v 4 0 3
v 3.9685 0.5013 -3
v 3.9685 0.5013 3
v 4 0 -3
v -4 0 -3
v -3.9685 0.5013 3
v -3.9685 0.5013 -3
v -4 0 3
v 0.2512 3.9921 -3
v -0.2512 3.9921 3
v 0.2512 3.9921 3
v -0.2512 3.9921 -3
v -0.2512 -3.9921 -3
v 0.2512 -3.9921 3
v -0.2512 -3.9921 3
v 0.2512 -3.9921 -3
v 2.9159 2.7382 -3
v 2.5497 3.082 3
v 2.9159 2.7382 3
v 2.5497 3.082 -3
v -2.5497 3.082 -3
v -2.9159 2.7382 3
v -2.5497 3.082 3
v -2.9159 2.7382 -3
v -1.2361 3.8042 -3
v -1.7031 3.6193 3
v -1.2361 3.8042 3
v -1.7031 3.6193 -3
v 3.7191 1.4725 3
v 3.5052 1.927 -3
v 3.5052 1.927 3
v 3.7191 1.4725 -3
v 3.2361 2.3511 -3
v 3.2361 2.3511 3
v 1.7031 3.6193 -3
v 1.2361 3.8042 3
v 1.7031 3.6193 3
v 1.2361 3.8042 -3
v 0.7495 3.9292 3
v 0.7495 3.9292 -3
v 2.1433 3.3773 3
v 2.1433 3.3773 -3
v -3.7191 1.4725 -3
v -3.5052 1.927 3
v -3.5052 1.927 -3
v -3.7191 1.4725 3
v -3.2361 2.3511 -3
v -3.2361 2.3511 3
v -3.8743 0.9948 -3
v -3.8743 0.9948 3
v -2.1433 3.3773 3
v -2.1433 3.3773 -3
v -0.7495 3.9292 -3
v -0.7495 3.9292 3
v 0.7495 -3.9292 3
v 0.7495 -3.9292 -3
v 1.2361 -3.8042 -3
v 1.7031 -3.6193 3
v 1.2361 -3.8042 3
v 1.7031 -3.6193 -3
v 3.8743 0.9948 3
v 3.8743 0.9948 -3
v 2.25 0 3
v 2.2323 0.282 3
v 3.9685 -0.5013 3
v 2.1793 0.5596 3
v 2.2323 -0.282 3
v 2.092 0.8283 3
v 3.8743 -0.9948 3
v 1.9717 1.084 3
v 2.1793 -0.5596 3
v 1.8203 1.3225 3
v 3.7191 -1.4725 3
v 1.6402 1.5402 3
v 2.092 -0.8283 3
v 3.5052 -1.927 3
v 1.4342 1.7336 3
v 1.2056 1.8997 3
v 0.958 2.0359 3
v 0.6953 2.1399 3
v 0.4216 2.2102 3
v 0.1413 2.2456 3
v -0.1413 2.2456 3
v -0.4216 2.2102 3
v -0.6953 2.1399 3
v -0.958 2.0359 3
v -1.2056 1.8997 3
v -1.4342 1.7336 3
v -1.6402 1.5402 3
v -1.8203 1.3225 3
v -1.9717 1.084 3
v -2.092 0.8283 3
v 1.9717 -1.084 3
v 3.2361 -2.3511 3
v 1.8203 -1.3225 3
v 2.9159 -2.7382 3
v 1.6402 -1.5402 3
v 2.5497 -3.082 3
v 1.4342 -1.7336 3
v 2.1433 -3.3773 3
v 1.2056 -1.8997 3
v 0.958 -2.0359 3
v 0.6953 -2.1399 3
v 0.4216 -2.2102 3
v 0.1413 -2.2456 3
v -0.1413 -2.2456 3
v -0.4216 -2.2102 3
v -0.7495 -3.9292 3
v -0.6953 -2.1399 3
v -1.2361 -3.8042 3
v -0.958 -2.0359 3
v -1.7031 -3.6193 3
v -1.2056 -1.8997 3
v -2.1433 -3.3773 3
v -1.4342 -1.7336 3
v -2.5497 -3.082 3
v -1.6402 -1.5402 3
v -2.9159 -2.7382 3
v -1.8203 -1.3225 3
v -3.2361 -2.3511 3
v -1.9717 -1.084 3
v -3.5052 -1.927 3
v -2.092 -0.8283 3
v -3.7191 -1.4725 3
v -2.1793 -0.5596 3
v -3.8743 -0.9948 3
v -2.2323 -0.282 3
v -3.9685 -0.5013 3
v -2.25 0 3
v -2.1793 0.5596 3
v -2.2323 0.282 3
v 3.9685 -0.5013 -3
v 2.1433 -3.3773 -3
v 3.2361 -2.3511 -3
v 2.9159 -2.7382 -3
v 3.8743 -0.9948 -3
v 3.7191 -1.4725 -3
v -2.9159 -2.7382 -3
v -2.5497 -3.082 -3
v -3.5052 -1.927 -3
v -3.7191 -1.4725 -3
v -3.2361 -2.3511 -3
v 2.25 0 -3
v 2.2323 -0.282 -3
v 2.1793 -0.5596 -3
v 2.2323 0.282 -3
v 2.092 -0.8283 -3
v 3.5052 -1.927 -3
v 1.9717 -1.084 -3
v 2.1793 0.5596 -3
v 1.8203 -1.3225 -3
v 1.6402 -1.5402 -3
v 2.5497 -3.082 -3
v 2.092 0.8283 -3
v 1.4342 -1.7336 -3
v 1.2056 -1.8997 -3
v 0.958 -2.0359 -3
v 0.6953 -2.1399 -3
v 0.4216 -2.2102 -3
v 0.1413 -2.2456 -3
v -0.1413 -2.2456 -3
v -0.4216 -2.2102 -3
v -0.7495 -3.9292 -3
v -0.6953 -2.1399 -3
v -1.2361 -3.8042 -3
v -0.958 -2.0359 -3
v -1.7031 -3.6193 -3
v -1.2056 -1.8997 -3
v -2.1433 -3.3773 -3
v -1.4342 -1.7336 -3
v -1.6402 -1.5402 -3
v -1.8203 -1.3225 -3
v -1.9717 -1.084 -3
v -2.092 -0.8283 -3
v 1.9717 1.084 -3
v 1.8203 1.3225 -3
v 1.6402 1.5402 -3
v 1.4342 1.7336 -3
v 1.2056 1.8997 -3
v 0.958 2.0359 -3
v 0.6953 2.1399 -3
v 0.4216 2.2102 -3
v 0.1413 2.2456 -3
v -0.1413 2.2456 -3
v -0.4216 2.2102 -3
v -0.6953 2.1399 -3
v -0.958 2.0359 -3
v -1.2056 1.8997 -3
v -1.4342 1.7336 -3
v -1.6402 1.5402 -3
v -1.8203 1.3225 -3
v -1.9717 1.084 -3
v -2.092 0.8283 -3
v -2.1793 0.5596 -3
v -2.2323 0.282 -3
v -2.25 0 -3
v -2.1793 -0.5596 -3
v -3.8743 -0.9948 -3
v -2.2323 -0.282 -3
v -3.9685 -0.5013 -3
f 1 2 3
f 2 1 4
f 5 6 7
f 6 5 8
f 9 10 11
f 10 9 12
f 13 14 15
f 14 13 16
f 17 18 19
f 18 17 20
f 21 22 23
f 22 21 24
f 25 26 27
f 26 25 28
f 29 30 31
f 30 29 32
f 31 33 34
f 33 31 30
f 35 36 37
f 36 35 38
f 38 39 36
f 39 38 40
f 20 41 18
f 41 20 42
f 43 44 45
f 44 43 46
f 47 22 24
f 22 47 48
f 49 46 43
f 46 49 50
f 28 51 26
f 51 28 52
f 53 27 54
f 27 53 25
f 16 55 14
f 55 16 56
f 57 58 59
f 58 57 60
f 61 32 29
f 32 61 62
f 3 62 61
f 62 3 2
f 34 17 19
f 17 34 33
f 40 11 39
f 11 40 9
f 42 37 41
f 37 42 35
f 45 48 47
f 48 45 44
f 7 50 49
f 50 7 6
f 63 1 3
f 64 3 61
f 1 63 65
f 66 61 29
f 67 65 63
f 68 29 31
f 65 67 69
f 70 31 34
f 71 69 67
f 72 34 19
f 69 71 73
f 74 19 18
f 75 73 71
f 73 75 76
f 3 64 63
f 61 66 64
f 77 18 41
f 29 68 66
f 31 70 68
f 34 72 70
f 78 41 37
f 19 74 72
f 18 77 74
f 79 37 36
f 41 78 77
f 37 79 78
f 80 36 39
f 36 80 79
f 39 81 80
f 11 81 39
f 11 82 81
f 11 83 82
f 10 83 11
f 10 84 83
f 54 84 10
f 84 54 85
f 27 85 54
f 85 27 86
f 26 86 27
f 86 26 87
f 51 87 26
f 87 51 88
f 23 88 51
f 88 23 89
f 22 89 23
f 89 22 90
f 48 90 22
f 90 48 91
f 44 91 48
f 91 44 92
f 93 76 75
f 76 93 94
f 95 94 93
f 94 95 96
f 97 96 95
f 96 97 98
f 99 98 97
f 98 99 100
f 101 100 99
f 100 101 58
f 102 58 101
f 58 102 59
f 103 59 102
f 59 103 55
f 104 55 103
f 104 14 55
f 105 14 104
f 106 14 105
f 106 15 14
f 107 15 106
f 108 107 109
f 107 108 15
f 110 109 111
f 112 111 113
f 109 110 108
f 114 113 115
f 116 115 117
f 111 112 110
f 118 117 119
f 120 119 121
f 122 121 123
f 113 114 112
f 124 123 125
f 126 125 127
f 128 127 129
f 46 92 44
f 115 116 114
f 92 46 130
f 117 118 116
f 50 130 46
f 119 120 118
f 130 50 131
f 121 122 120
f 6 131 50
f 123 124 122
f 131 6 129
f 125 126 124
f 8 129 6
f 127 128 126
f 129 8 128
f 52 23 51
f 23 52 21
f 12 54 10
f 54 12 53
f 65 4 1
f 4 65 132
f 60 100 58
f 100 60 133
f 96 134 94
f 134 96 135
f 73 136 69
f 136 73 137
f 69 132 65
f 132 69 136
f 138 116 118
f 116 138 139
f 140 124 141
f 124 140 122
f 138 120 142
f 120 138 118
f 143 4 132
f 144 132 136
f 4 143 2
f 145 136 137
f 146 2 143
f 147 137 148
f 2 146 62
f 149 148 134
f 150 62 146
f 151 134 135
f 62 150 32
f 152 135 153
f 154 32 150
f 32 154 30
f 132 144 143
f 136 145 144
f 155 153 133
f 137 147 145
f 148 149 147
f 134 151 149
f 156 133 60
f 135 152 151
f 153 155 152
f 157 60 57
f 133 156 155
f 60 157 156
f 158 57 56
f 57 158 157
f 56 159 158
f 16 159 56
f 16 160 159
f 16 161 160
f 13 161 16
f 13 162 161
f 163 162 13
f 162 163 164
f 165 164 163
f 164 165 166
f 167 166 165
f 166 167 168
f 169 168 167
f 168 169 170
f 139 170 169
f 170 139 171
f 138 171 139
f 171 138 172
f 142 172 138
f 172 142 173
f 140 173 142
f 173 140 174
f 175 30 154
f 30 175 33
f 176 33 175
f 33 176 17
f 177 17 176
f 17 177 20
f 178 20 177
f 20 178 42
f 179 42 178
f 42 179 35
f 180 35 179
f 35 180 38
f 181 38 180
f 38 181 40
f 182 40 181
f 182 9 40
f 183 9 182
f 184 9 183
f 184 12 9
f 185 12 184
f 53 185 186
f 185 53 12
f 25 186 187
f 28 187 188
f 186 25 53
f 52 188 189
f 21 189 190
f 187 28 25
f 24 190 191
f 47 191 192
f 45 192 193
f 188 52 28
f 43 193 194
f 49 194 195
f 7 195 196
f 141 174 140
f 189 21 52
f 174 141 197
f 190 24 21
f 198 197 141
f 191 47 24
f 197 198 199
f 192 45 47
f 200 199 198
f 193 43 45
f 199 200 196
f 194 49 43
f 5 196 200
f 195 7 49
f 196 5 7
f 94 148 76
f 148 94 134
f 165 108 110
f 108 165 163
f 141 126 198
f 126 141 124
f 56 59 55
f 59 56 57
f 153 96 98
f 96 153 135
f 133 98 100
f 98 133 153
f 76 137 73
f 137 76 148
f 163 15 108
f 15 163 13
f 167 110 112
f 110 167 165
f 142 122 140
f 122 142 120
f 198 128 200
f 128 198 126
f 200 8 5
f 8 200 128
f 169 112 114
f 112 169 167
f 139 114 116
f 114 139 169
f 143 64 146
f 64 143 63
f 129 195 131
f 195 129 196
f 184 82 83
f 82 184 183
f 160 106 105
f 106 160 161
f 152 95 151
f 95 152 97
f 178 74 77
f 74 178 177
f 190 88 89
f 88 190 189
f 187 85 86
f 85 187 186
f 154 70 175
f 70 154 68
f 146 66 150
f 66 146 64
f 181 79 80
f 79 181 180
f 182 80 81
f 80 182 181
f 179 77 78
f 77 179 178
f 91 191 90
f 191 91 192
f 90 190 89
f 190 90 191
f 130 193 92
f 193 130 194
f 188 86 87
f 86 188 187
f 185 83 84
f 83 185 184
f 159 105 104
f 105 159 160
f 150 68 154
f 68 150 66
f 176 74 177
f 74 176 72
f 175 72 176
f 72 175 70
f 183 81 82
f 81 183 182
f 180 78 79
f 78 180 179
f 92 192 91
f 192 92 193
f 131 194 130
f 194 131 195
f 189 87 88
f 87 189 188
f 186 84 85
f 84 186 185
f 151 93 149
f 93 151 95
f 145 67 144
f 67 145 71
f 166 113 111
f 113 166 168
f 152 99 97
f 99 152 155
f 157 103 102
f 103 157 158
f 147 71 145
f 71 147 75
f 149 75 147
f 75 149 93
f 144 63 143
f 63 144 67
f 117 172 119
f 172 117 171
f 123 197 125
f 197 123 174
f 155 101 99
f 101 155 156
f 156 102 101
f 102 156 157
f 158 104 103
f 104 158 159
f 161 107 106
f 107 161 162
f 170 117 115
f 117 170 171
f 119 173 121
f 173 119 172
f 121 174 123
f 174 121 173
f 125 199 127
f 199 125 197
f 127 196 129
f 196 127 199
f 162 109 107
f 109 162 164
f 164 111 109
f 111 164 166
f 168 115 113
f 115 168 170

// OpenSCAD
$fn = 50;


difference() {
	union() {
		translate(v = [0, 0, -3.0000000000]) {
			cylinder(h = 6, r = 4.0000000000);
		}
	}
	union() {
		translate(v = [0, 0, -100.0000000000]) {
			cylinder(h = 200, r = 2.2500000000);
		}
	}
}
